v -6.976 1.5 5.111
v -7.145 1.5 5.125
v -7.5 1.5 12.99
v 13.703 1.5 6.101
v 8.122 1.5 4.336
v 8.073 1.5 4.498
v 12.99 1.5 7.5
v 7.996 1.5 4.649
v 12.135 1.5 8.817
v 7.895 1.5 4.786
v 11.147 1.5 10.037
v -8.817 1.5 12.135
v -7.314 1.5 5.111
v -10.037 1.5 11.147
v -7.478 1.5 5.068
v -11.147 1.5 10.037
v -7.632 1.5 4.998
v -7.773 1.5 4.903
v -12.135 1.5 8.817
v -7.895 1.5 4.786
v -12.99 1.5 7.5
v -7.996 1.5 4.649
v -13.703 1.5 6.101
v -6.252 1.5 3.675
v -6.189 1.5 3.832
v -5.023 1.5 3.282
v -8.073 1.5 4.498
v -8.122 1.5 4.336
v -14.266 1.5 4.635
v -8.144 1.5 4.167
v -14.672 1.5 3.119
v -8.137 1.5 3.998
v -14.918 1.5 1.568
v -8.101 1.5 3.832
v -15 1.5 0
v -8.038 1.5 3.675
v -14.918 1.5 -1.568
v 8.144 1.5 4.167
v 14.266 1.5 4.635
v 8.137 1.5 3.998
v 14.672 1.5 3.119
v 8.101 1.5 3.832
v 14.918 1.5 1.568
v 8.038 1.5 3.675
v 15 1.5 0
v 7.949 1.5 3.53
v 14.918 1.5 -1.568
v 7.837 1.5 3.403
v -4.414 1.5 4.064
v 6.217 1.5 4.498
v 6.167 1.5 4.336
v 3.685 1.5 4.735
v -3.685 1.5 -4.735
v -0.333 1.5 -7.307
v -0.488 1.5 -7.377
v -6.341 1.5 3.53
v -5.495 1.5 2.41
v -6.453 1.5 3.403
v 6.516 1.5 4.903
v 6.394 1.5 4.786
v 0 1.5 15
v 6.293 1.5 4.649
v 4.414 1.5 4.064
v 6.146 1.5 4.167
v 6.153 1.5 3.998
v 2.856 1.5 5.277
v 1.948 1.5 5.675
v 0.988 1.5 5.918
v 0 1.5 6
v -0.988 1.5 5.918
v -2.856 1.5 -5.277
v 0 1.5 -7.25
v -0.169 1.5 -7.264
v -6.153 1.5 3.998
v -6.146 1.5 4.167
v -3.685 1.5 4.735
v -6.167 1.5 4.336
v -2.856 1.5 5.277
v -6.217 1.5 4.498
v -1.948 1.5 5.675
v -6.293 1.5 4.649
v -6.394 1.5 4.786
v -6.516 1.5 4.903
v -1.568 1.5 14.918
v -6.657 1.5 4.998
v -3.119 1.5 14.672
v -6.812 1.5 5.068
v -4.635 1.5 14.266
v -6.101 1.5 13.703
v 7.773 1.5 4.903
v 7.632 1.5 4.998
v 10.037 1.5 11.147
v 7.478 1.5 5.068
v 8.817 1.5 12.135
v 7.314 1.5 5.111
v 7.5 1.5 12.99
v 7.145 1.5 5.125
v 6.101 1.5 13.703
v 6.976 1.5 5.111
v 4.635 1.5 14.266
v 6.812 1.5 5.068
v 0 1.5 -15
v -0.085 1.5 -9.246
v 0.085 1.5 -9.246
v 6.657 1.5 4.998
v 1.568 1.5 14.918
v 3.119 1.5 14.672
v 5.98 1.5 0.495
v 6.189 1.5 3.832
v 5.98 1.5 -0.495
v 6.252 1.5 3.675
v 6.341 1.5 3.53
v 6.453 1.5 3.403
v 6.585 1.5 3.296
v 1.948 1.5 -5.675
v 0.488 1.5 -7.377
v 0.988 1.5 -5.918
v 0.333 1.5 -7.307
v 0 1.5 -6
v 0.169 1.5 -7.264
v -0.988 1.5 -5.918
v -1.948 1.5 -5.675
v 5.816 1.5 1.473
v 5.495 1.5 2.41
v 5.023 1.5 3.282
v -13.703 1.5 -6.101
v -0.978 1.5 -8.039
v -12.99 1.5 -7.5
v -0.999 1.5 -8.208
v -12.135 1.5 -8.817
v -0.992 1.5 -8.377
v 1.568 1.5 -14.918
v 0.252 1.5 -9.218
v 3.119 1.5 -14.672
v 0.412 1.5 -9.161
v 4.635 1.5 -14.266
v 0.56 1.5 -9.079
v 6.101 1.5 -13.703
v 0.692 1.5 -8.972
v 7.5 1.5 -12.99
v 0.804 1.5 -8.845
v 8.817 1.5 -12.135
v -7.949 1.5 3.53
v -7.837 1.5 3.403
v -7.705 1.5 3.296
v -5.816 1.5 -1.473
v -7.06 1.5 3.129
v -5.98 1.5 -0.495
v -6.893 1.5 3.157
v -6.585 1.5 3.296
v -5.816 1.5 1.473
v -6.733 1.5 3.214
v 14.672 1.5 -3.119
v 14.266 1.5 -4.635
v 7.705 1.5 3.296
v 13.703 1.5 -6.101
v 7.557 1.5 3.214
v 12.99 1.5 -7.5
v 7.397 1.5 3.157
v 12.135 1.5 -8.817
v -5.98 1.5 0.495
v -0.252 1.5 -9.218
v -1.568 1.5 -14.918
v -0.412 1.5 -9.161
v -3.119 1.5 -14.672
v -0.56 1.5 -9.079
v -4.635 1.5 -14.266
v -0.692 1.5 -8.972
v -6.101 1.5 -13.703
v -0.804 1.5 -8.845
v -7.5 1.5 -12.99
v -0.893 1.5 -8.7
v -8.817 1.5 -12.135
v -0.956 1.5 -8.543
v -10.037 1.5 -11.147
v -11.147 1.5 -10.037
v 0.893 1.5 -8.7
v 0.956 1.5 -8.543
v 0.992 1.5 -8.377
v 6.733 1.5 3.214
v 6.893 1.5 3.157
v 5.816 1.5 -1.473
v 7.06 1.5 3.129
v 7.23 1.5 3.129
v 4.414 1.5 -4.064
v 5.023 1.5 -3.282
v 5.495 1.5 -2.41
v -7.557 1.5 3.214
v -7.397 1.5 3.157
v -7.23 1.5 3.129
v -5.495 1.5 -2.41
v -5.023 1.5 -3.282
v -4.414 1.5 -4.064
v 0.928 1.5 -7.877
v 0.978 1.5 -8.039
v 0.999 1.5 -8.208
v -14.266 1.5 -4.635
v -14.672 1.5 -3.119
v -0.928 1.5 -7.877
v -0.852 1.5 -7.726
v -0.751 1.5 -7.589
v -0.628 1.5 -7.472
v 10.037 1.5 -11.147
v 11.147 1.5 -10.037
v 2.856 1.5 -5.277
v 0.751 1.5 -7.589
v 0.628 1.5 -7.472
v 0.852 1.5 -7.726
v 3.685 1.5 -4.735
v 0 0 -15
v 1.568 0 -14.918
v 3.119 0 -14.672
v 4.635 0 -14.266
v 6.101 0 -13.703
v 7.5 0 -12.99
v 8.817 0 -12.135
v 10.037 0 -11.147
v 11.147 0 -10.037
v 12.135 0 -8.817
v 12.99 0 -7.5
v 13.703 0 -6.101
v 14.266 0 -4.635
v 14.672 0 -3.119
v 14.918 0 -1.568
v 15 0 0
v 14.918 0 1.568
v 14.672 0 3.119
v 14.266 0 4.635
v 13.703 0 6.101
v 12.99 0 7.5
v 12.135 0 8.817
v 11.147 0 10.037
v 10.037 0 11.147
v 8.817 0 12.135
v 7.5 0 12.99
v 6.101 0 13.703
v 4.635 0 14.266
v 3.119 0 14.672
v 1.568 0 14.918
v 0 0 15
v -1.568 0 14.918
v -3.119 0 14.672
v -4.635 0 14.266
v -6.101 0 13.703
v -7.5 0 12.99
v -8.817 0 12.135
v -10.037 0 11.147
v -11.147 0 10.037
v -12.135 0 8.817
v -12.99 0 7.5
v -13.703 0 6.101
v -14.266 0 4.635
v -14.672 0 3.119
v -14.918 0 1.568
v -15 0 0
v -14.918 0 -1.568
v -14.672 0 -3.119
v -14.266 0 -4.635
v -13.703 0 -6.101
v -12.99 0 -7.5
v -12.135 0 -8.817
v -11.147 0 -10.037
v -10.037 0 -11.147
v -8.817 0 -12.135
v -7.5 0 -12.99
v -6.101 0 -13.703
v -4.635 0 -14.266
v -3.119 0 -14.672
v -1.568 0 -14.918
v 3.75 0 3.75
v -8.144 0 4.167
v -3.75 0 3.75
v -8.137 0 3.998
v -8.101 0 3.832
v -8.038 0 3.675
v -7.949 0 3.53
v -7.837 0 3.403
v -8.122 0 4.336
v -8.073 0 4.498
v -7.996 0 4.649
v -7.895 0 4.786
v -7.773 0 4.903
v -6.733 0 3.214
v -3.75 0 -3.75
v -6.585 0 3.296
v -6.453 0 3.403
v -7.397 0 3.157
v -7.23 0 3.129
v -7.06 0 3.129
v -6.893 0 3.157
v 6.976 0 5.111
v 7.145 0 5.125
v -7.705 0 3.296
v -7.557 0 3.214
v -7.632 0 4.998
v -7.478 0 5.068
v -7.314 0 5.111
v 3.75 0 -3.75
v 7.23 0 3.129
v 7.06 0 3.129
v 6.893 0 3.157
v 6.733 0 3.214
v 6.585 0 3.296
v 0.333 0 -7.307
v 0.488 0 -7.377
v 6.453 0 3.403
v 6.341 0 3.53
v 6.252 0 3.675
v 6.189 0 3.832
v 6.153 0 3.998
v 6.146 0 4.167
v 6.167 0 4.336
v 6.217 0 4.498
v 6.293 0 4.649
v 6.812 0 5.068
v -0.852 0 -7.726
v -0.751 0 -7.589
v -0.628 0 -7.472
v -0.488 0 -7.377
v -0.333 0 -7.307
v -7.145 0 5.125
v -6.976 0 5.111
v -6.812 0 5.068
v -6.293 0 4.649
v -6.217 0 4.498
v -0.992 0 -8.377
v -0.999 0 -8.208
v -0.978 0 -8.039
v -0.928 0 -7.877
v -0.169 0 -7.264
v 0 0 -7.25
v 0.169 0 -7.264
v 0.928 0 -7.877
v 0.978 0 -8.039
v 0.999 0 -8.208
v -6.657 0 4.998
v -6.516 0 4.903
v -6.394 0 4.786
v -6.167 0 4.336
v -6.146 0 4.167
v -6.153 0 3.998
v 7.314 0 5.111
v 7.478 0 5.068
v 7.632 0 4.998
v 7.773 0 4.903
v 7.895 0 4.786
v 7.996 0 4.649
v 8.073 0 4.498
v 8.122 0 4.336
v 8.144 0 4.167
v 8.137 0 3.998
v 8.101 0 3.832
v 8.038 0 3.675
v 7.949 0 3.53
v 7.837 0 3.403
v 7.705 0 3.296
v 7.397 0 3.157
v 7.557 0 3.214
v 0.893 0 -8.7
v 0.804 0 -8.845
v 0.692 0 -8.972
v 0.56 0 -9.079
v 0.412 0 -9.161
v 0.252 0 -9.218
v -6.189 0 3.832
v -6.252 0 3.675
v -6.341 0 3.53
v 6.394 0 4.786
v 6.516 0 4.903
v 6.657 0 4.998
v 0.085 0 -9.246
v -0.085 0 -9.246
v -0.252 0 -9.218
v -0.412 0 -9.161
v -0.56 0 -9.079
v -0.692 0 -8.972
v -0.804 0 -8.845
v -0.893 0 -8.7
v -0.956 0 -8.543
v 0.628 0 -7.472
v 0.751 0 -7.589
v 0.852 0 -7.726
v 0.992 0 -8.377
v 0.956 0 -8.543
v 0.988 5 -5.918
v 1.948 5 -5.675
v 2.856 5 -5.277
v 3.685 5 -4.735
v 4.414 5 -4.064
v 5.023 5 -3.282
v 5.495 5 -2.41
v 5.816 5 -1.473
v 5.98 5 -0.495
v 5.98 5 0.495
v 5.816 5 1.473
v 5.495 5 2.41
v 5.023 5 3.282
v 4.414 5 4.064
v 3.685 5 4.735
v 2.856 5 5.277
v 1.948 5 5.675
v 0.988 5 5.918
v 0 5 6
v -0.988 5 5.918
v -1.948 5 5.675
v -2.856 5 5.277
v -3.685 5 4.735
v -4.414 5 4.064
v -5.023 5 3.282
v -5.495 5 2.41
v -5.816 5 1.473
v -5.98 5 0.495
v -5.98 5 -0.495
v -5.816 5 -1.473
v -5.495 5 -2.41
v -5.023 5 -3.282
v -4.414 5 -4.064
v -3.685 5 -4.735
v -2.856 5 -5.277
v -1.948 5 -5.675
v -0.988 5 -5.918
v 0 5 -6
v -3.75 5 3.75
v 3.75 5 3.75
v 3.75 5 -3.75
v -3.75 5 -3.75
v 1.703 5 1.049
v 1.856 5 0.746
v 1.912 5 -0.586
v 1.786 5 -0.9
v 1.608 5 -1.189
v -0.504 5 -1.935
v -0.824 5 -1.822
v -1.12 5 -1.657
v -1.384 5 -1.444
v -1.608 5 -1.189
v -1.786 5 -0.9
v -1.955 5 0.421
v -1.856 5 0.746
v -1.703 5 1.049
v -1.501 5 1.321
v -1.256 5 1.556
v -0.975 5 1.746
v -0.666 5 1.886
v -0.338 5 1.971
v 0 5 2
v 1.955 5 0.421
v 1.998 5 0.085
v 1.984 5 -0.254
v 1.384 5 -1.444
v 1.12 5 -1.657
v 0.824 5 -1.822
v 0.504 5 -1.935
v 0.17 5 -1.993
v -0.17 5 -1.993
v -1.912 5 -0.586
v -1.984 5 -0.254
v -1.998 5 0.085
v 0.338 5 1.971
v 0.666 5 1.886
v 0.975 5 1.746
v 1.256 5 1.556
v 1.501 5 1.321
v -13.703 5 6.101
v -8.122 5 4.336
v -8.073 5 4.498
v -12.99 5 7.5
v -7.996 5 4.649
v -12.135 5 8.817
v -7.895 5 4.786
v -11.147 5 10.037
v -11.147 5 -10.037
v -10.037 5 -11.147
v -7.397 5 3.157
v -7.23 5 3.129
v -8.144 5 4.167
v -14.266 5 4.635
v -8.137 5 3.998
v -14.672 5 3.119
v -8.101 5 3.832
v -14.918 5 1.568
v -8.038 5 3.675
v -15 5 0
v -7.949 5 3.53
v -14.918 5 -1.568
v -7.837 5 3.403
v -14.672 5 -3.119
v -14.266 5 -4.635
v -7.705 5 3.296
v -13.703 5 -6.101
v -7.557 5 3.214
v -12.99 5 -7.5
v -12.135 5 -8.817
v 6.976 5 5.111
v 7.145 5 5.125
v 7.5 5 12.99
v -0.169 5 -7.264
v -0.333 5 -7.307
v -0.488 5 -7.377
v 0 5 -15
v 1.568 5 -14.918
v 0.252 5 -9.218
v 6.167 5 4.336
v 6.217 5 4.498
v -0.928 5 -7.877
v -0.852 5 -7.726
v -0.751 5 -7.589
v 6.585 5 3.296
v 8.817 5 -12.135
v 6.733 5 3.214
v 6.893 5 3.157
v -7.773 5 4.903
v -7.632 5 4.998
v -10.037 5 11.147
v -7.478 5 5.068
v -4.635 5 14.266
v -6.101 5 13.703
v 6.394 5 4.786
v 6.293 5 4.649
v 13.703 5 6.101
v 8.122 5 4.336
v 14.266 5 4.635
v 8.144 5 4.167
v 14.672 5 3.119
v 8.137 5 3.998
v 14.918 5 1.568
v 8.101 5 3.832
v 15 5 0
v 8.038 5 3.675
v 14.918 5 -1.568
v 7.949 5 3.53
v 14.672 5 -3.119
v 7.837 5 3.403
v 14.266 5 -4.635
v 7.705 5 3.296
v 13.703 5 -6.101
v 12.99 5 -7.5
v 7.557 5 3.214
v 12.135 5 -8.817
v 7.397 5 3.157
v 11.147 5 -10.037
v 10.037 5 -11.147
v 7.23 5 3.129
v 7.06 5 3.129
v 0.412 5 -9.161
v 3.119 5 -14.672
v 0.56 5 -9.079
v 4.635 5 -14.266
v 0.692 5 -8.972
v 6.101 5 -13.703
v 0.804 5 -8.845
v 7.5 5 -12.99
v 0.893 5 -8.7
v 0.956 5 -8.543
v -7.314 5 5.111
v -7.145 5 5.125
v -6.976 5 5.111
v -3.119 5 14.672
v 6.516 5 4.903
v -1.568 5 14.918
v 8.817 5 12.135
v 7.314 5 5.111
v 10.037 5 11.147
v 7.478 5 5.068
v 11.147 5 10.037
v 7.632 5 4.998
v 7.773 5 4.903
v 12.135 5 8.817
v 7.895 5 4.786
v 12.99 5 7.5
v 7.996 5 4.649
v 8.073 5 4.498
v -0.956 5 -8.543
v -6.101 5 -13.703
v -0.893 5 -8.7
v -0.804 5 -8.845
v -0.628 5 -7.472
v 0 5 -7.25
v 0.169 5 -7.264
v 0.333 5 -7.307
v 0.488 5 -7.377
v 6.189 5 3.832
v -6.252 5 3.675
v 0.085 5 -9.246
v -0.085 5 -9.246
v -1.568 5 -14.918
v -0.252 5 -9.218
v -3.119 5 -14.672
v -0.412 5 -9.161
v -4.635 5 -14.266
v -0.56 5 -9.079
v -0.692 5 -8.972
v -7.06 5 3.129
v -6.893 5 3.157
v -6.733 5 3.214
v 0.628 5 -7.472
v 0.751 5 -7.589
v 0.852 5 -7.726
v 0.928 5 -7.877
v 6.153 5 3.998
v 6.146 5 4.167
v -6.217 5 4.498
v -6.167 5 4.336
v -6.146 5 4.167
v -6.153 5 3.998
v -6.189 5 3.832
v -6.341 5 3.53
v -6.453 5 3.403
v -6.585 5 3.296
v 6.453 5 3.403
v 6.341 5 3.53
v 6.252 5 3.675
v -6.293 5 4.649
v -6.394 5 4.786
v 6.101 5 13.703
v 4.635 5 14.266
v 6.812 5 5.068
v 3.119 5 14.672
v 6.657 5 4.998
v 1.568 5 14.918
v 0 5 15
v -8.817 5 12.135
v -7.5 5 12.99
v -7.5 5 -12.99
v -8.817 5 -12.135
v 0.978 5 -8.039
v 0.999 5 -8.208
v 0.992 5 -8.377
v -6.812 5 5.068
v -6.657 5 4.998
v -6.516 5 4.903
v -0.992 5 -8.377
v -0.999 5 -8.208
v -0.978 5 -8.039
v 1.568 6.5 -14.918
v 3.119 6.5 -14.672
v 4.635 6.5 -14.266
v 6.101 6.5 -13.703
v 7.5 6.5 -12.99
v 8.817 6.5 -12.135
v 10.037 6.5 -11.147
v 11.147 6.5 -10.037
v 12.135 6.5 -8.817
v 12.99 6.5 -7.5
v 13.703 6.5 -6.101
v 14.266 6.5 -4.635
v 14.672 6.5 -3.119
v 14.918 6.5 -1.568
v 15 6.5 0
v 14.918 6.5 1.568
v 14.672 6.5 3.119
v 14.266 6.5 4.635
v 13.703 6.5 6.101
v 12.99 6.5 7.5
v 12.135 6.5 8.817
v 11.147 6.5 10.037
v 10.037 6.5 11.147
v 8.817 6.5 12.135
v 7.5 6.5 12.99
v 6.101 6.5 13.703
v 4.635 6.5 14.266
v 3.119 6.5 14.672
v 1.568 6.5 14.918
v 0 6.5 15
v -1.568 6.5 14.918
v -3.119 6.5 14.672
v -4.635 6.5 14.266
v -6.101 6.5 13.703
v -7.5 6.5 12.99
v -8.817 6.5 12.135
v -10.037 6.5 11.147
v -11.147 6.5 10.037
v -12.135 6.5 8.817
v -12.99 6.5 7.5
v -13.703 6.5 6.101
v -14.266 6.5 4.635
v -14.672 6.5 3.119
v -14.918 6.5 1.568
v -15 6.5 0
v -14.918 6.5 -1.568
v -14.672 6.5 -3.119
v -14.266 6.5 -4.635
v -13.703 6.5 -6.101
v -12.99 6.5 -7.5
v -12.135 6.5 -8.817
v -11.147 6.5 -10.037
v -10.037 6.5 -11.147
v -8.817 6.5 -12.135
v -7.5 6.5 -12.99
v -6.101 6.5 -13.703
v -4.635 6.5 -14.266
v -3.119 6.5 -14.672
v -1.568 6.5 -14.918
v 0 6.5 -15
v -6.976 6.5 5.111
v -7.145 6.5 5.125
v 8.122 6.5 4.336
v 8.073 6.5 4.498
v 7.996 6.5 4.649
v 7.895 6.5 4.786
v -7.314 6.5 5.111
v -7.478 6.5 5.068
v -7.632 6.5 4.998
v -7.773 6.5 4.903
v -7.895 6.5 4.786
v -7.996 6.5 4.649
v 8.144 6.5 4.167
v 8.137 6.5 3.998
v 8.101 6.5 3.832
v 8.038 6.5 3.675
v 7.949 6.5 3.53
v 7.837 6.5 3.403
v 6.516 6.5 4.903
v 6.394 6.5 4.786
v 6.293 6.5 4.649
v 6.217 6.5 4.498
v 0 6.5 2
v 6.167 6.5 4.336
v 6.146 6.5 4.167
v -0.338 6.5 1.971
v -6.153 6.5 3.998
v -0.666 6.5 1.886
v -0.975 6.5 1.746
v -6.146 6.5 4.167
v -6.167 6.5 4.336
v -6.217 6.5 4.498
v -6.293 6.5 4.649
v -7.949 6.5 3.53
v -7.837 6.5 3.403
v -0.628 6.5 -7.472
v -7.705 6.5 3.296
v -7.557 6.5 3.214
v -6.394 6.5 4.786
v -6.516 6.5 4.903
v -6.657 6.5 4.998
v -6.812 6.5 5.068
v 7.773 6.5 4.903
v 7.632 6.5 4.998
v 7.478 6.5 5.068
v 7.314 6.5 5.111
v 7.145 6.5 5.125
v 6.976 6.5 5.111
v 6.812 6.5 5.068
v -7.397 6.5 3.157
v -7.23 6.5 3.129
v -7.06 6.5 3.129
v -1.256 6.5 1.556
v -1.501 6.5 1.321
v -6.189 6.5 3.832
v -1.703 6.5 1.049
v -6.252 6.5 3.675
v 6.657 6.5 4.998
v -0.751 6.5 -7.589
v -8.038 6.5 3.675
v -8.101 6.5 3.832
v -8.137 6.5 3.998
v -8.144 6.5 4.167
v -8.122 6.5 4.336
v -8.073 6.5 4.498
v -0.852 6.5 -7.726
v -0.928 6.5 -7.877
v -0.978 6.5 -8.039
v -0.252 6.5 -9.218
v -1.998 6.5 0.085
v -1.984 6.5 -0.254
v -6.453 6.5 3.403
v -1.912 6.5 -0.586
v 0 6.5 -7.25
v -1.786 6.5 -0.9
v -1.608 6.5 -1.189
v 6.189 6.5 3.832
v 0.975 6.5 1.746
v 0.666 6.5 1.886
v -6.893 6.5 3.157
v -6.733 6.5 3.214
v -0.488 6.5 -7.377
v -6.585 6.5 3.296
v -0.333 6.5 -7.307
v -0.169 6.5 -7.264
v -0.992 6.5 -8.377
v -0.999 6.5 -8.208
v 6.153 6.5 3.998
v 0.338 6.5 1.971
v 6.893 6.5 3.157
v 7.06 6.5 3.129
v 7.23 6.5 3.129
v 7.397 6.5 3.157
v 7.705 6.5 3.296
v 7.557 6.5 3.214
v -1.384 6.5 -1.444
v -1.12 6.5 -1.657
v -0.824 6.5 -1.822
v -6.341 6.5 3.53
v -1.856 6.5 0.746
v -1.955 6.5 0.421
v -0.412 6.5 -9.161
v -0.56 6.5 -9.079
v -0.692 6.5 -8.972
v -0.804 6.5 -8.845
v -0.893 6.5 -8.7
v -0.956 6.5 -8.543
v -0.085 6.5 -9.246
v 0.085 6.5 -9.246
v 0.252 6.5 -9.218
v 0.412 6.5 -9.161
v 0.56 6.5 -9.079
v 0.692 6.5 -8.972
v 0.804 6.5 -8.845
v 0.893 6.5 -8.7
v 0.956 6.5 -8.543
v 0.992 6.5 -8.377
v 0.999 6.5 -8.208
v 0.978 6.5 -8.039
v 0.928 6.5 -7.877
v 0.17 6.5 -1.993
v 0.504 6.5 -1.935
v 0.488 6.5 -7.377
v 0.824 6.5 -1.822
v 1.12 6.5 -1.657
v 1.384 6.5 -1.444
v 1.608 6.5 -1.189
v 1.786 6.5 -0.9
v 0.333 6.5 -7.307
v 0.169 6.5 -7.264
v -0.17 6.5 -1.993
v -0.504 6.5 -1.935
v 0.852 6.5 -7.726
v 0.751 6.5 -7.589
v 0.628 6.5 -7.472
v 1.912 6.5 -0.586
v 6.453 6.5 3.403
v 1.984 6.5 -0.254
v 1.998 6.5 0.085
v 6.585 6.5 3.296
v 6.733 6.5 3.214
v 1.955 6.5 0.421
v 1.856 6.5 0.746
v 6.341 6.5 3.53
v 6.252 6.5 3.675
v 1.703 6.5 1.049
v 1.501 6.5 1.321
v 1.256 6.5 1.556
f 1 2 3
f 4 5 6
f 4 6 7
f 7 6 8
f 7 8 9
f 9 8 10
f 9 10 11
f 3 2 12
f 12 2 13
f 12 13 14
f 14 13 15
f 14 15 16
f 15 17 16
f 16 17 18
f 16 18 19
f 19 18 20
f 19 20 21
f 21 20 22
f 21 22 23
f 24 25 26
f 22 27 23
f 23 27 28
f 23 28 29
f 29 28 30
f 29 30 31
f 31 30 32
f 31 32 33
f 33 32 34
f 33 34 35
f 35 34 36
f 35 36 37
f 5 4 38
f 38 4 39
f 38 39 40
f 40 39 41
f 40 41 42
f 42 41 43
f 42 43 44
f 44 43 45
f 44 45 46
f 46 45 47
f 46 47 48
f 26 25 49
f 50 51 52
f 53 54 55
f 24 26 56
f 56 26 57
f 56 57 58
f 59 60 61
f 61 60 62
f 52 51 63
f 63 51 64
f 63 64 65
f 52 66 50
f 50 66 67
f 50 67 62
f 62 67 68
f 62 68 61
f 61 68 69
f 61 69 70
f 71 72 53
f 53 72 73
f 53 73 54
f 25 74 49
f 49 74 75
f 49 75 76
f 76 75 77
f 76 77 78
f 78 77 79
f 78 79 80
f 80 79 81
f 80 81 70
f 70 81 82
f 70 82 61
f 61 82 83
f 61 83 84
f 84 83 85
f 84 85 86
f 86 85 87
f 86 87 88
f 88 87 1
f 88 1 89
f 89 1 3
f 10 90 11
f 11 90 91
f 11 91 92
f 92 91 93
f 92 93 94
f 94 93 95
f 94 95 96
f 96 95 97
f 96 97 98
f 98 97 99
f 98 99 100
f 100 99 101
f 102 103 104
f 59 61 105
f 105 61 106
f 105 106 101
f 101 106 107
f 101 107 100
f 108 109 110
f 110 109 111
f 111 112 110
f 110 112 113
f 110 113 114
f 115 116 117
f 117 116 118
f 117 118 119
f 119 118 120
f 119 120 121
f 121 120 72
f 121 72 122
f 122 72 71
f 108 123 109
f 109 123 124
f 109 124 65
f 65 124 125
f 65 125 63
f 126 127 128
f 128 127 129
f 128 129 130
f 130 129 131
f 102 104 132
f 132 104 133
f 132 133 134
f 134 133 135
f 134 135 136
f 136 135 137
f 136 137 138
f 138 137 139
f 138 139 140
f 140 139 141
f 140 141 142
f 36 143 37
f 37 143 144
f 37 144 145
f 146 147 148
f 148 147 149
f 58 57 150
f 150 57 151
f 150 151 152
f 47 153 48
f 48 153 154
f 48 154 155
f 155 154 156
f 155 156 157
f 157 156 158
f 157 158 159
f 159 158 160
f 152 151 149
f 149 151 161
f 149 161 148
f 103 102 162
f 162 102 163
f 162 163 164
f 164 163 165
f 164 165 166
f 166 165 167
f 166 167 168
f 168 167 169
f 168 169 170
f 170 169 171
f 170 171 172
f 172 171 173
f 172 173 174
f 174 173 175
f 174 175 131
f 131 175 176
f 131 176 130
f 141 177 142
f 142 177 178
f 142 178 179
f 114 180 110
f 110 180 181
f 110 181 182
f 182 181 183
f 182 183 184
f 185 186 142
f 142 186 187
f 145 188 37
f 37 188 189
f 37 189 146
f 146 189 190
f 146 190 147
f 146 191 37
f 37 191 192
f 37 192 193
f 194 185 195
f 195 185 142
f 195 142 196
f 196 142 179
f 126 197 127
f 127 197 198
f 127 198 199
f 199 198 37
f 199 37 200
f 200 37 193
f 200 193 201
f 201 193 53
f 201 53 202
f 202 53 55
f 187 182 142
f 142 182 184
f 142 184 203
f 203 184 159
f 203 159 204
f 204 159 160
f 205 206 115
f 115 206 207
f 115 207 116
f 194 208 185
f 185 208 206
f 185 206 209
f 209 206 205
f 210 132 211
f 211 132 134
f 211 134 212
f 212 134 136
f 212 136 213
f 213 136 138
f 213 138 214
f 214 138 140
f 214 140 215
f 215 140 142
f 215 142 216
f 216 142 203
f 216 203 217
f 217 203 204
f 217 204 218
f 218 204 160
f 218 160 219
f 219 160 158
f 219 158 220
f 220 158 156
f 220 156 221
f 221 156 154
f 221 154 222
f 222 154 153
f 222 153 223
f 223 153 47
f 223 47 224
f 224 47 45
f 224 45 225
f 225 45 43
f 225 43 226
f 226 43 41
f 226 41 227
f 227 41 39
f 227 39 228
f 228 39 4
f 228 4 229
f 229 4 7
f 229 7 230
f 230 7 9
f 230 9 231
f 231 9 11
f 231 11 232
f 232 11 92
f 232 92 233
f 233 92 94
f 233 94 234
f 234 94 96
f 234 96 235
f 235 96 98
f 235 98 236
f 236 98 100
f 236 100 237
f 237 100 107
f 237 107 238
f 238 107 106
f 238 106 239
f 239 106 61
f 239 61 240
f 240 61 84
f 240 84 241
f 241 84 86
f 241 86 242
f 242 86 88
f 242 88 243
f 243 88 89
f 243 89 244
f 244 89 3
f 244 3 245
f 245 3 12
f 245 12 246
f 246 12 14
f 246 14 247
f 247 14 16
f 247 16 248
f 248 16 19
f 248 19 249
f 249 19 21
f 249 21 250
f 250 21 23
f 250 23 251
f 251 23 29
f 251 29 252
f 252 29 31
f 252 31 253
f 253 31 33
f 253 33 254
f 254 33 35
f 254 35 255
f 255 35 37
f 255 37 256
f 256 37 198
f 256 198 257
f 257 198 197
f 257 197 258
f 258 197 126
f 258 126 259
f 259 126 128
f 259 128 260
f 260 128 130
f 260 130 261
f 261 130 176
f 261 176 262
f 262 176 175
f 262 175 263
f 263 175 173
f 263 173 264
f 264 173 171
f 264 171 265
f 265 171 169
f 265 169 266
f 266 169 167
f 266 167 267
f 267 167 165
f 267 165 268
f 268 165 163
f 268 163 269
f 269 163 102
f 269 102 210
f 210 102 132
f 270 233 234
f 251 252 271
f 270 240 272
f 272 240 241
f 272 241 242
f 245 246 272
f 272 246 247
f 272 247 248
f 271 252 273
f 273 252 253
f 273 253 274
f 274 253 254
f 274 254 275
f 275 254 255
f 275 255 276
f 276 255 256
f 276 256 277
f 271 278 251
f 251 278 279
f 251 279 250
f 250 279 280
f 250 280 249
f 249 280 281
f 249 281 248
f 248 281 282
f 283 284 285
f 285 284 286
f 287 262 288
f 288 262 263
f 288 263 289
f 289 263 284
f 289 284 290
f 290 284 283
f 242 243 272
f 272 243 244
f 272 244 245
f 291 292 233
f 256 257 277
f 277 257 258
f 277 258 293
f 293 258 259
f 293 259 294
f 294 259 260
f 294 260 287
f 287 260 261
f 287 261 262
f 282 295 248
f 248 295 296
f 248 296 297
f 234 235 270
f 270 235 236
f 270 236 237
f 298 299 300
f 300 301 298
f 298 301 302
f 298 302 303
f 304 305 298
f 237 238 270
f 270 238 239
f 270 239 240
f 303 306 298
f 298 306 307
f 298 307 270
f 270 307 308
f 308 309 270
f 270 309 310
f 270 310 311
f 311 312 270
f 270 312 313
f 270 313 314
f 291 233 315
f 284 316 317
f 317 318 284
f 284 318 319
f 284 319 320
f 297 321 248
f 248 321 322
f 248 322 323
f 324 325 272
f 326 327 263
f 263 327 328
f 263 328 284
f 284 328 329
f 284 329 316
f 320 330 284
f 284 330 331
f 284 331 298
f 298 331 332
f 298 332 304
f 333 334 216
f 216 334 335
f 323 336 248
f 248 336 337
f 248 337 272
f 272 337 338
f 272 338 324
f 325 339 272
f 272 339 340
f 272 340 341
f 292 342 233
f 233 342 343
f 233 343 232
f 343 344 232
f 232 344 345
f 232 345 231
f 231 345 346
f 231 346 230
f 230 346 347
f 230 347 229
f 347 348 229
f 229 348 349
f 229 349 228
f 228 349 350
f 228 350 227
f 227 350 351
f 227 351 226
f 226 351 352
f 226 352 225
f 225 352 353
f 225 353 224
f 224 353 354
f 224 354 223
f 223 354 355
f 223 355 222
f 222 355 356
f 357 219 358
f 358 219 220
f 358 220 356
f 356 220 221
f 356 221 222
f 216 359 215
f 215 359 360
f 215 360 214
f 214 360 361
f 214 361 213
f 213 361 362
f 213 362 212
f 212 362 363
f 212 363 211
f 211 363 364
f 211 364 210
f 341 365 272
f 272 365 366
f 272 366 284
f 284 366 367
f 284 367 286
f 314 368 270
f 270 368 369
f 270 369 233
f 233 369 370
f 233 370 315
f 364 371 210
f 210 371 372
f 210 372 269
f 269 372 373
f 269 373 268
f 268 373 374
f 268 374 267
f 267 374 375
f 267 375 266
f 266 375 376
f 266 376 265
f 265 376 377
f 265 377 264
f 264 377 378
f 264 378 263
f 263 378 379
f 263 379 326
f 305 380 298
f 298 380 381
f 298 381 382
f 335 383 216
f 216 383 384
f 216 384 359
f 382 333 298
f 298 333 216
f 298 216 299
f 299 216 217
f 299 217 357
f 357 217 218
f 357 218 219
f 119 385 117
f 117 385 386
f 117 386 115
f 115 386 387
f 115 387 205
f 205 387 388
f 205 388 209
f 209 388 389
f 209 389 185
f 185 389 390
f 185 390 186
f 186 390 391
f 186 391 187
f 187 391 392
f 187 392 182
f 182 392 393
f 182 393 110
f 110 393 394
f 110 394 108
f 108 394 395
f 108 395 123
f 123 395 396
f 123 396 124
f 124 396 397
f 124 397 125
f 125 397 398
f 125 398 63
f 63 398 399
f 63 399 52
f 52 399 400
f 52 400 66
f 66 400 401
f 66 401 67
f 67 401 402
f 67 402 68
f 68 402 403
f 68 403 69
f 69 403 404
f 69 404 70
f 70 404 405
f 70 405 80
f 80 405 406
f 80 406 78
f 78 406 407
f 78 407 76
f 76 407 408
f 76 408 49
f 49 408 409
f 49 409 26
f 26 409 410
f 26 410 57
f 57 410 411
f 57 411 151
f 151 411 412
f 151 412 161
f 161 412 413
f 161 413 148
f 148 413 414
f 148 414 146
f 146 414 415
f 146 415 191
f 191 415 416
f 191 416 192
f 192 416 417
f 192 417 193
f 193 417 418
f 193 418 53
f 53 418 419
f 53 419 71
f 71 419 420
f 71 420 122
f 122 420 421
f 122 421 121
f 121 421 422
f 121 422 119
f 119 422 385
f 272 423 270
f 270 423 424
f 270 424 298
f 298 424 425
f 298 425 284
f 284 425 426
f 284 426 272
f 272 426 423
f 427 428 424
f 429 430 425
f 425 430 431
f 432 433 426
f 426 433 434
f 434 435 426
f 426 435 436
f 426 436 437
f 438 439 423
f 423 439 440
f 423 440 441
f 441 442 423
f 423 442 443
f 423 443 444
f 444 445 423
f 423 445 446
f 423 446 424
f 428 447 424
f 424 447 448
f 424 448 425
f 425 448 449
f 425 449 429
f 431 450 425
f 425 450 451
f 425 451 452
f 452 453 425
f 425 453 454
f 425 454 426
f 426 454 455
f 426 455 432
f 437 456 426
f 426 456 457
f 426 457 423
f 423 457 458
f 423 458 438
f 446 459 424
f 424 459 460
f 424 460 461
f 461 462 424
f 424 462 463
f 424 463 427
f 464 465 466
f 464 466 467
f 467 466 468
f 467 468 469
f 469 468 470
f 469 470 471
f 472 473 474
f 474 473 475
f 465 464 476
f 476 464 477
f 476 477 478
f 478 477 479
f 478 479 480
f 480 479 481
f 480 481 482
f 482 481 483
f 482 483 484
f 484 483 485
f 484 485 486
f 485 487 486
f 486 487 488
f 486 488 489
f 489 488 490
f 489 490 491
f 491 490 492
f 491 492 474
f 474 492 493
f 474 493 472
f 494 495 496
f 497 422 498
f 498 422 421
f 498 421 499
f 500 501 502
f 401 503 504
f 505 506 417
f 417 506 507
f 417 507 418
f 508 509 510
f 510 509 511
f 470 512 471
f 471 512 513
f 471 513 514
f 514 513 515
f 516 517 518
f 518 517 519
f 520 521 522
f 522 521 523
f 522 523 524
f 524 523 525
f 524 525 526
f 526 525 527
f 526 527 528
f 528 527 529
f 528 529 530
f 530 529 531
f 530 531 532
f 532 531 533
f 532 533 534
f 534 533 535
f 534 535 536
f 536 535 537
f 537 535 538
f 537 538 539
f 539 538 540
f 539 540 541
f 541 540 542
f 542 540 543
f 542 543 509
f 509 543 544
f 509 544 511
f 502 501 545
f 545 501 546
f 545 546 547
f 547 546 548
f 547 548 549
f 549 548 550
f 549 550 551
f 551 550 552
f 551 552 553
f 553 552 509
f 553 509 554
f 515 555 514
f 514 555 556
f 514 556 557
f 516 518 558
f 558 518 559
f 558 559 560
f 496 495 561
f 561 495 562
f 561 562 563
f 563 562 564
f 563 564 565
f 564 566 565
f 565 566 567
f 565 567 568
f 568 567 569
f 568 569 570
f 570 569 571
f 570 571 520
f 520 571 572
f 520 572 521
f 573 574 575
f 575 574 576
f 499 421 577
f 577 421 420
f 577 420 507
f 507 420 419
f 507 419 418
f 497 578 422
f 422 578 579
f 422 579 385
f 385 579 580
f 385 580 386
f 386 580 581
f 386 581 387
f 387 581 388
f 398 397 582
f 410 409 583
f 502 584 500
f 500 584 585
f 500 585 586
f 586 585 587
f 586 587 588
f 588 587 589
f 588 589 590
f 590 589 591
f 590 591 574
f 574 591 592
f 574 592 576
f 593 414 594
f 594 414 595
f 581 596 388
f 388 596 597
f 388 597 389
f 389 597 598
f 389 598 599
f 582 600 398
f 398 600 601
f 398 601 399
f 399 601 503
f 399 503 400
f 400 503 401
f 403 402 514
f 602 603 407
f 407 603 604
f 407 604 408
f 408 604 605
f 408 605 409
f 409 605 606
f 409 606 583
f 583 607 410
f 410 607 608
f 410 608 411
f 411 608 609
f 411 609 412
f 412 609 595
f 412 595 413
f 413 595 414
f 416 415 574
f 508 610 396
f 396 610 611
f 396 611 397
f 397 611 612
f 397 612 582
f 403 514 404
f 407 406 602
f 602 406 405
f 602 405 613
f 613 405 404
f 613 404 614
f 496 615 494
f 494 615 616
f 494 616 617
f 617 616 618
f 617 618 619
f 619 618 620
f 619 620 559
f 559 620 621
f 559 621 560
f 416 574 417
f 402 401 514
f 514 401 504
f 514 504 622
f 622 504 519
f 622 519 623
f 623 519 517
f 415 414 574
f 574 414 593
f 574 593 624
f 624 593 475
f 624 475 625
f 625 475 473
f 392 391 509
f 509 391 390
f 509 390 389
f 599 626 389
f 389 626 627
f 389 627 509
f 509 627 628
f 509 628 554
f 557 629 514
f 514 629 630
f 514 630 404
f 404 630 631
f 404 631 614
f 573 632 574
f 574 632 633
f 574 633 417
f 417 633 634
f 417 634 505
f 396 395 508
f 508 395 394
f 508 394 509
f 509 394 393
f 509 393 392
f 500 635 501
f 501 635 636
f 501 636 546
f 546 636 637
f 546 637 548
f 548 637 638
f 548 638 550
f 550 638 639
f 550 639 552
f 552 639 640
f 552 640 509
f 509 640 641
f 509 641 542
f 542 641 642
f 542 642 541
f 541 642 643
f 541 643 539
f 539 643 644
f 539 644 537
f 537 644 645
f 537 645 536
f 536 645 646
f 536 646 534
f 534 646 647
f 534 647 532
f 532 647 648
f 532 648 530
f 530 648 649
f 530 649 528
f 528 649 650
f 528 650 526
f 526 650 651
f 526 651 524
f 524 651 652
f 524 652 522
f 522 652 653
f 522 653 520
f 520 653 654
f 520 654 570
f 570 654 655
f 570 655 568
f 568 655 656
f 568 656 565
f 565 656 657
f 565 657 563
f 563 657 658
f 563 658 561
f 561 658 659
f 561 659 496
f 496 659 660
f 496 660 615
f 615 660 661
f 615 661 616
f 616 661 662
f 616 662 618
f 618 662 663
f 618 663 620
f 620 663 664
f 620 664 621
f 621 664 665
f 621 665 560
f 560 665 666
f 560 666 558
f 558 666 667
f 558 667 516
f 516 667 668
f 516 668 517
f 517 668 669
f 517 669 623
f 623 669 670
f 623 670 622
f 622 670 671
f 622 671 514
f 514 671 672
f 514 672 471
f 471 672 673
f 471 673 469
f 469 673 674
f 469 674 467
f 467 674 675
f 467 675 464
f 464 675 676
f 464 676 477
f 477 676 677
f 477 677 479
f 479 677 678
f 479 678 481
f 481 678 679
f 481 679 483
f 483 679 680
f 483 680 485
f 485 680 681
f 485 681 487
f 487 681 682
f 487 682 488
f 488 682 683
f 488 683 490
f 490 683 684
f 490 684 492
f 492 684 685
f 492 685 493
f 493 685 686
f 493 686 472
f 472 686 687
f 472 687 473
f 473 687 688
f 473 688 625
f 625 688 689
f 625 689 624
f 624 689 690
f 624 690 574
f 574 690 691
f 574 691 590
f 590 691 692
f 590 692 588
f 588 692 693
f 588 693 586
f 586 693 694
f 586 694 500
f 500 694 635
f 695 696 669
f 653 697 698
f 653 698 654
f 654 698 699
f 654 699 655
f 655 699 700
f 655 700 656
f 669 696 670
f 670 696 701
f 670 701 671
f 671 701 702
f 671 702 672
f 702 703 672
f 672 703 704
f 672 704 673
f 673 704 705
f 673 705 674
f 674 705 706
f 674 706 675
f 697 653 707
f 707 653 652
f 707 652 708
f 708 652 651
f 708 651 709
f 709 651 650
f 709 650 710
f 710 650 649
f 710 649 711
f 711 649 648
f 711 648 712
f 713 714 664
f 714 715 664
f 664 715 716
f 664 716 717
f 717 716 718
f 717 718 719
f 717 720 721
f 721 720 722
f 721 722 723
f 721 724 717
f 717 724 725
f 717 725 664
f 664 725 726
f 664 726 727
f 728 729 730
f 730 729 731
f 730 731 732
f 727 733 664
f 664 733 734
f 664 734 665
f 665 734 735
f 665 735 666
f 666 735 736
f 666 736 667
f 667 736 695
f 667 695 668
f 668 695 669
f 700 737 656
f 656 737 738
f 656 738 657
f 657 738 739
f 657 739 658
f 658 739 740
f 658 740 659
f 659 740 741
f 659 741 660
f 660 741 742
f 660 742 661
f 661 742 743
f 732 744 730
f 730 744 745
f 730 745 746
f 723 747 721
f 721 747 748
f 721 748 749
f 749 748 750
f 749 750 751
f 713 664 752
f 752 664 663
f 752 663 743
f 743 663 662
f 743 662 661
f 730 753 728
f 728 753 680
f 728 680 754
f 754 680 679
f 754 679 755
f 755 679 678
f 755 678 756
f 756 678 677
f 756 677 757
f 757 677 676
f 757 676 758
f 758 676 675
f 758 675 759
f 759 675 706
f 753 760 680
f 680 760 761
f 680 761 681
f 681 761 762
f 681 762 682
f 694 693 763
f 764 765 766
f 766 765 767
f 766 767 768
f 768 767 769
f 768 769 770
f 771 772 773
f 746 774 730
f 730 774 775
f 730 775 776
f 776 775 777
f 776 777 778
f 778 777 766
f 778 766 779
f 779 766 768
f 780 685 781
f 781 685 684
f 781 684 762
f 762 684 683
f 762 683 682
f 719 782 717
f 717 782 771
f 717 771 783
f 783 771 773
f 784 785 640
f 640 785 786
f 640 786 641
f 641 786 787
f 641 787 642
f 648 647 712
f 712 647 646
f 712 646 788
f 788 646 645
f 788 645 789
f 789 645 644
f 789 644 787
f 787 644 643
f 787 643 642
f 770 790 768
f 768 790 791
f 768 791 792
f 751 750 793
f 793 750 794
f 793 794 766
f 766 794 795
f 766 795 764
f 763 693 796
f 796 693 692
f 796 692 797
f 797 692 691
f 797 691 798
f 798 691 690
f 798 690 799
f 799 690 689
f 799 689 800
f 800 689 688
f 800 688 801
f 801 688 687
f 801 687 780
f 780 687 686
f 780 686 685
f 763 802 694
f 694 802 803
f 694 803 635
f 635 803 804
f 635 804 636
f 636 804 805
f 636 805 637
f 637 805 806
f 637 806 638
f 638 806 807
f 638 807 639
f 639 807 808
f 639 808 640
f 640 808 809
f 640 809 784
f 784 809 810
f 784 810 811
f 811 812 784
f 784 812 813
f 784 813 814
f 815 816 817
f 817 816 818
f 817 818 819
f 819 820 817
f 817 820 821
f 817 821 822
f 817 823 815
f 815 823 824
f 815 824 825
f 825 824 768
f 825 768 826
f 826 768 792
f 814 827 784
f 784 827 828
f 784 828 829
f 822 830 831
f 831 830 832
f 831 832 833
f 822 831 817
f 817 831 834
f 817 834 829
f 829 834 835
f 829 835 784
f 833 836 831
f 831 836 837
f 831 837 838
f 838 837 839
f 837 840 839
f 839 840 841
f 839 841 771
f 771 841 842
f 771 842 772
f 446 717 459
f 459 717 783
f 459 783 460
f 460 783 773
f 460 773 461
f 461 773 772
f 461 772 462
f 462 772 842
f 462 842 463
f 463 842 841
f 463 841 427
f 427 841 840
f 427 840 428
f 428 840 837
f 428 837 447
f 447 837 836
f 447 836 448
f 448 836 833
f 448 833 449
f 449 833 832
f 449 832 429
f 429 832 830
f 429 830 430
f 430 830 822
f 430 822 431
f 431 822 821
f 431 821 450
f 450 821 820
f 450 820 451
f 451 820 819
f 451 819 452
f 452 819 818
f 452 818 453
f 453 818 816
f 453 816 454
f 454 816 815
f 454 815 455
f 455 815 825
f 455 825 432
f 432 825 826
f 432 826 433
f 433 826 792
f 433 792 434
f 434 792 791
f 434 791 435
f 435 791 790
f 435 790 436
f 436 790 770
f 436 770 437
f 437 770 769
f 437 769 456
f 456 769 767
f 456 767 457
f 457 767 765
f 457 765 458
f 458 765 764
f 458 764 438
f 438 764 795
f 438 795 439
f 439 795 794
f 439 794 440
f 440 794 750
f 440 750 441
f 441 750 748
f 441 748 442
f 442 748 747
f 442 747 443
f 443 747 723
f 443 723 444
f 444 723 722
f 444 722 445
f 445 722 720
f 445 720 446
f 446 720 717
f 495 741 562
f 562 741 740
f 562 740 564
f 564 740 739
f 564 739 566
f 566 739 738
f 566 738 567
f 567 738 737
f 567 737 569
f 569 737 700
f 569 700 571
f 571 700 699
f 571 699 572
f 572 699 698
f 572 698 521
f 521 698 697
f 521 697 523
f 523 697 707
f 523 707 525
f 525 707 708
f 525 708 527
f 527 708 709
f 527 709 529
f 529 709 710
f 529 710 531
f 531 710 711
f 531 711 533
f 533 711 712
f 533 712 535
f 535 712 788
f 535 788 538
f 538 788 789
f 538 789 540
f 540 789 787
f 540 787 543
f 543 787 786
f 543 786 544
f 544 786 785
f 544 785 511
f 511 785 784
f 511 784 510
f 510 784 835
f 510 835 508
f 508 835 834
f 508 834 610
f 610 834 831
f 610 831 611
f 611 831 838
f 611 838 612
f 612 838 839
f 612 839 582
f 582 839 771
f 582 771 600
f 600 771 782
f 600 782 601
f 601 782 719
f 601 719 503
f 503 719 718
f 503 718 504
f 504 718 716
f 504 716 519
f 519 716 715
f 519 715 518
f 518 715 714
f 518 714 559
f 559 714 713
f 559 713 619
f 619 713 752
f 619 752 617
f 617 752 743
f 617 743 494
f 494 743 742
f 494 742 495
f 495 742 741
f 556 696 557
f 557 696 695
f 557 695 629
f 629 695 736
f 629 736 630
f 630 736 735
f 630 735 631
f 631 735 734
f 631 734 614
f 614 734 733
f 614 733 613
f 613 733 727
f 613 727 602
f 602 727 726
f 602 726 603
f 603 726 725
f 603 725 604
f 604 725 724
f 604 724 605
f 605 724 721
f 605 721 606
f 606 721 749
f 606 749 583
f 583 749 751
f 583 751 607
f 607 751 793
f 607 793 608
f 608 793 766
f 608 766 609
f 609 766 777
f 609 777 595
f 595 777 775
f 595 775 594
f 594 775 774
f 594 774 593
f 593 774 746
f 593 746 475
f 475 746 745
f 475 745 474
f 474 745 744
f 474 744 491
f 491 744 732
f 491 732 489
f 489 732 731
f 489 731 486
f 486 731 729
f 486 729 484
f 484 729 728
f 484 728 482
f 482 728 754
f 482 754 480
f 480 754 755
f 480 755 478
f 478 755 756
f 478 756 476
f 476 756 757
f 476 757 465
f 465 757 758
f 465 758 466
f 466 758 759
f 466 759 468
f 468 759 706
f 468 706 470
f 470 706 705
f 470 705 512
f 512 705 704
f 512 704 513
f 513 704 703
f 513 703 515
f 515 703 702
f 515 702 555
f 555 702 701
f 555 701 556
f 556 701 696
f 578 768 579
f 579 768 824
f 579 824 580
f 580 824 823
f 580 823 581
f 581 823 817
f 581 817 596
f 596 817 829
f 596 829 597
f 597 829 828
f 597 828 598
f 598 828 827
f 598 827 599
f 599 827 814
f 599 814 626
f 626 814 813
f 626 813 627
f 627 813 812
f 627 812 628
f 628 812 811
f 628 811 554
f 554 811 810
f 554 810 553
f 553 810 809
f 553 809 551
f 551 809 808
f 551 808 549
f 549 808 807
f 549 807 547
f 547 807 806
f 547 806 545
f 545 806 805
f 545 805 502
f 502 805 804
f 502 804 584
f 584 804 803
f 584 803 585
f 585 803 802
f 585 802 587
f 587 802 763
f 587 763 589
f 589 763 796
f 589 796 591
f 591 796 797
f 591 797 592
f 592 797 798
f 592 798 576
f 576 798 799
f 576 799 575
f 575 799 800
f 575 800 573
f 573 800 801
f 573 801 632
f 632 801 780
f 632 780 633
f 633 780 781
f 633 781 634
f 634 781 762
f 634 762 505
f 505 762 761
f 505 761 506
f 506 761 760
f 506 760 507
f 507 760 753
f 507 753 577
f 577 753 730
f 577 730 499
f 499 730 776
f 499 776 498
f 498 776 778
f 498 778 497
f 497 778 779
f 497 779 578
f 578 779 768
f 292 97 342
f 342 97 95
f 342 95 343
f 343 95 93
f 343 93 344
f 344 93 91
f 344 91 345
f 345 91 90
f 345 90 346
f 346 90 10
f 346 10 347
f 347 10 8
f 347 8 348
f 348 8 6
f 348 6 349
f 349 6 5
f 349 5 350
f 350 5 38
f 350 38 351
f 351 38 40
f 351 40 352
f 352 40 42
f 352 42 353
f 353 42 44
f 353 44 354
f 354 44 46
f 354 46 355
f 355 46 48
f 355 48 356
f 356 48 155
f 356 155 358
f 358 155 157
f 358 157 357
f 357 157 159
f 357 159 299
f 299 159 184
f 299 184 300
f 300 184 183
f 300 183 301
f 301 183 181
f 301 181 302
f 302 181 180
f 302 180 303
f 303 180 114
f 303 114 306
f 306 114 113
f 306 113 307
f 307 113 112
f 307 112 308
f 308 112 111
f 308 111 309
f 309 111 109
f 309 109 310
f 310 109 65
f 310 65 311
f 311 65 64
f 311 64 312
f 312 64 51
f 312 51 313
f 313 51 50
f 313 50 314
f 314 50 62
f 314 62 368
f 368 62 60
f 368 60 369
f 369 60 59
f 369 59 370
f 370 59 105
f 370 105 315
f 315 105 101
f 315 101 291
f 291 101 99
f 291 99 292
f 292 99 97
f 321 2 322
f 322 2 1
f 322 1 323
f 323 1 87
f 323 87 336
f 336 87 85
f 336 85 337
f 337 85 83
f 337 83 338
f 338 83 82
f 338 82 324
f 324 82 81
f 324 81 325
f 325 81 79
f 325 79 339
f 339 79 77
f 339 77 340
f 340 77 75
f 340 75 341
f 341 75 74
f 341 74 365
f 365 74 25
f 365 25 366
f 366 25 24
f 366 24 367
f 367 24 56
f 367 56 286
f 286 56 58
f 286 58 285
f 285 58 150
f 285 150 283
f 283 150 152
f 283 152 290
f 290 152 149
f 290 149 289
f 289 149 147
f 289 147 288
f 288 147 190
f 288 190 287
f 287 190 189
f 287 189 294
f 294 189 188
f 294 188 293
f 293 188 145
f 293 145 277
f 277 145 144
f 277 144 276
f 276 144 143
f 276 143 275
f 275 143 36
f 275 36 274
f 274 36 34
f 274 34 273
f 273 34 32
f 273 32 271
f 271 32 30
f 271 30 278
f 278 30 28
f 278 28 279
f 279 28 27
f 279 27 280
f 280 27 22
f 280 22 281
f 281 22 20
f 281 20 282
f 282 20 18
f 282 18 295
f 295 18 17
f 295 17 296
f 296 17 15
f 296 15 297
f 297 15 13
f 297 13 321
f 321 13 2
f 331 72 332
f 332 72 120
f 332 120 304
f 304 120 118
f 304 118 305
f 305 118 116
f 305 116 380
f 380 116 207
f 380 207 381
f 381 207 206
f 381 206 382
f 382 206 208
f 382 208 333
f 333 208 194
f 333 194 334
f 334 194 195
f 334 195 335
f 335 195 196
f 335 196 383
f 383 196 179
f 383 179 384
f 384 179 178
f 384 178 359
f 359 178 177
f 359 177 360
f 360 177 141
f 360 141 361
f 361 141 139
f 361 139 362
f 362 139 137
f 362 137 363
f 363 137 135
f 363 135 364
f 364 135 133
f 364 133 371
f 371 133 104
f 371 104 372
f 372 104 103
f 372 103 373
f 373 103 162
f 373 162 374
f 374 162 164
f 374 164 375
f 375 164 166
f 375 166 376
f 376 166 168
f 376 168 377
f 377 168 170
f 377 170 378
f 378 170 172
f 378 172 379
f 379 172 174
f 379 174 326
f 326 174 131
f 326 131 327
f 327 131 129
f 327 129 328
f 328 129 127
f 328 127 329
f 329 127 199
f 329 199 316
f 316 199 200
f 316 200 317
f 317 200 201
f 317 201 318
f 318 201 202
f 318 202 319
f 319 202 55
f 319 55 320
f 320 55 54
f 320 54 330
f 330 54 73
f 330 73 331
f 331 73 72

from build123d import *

# Parameters (mm, degrees)
SKETCH_1_R          = 15
EXTRUDE_1_DEPTH     = 1.5
SKETCH_2_R          = 6
SKETCH_2_W          = 7.5
SKETCH_2_H          = 7.5
EXTRUDE_2_DEPTH     = 3.5
SKETCH_3_W          = 7.5
SKETCH_3_H          = 7.5
CUT_EXTRUDE_1_DEPTH = 3.5
SKETCH_4_R          = 15
EXTRUDE_3_DEPTH     = 1.5
SKETCH_5_R          = 2
CUT_EXTRUDE_2_DEPTH = 1.5
SKETCH_6_R          = 1
CUT_EXTRUDE_3_DEPTH = 10


with BuildPart() as part:
    # 草图1 → 凸台-拉伸1 (new body)
    with BuildSketch(Plane(origin=(0, 0, 0), x_dir=(1, 0, 0), z_dir=(0, 1, 0))):
        Circle(SKETCH_1_R)
    extrude(amount=EXTRUDE_1_DEPTH)

    # 草图2 → 凸台-拉伸2 (add)
    with BuildSketch(Plane(origin=(0, 1.5, 0), x_dir=(1, 0, 0), z_dir=(0, 1, 0))):
        Circle(SKETCH_2_R)
        Rectangle(SKETCH_2_W, SKETCH_2_H, mode=Mode.SUBTRACT)
    extrude(amount=EXTRUDE_2_DEPTH)

    # 草图3 → 切除-拉伸1 (cut)
    with BuildSketch(Plane(origin=(0, 1.5, 0), x_dir=(1, 0, 0), z_dir=(0, 1, 0))):
        Rectangle(SKETCH_3_W, SKETCH_3_H)
    extrude(amount=-CUT_EXTRUDE_1_DEPTH, mode=Mode.SUBTRACT)

    # 草图4 → 凸台-拉伸3 (add)
    with BuildSketch(Plane(origin=(0, 5, 0), x_dir=(1, 0, 0), z_dir=(0, 1, 0))):
        Circle(SKETCH_4_R)
    extrude(amount=EXTRUDE_3_DEPTH)

    # 草图5 → 切除-拉伸2 (cut)
    with BuildSketch(Plane(origin=(0, 6.5, 0), x_dir=(1, 0, 0), z_dir=(0, 1, 0))):
        Circle(SKETCH_5_R)
    extrude(amount=-CUT_EXTRUDE_2_DEPTH, mode=Mode.SUBTRACT)

    # 草图6 → 切除-拉伸3 (cut)
    with BuildSketch(Plane(origin=(0, 6.5, 0), x_dir=(1, 0, 0), z_dir=(0, 1, 0))):
        with Locations((0, 8.25)):
            Circle(SKETCH_6_R)
        with Locations((-7.144709581, -4.125)):
            Circle(SKETCH_6_R)
        with Locations((7.144709581, -4.125)):
            Circle(SKETCH_6_R)
    extrude(amount=-CUT_EXTRUDE_3_DEPTH, mode=Mode.SUBTRACT)


solid = part.part
